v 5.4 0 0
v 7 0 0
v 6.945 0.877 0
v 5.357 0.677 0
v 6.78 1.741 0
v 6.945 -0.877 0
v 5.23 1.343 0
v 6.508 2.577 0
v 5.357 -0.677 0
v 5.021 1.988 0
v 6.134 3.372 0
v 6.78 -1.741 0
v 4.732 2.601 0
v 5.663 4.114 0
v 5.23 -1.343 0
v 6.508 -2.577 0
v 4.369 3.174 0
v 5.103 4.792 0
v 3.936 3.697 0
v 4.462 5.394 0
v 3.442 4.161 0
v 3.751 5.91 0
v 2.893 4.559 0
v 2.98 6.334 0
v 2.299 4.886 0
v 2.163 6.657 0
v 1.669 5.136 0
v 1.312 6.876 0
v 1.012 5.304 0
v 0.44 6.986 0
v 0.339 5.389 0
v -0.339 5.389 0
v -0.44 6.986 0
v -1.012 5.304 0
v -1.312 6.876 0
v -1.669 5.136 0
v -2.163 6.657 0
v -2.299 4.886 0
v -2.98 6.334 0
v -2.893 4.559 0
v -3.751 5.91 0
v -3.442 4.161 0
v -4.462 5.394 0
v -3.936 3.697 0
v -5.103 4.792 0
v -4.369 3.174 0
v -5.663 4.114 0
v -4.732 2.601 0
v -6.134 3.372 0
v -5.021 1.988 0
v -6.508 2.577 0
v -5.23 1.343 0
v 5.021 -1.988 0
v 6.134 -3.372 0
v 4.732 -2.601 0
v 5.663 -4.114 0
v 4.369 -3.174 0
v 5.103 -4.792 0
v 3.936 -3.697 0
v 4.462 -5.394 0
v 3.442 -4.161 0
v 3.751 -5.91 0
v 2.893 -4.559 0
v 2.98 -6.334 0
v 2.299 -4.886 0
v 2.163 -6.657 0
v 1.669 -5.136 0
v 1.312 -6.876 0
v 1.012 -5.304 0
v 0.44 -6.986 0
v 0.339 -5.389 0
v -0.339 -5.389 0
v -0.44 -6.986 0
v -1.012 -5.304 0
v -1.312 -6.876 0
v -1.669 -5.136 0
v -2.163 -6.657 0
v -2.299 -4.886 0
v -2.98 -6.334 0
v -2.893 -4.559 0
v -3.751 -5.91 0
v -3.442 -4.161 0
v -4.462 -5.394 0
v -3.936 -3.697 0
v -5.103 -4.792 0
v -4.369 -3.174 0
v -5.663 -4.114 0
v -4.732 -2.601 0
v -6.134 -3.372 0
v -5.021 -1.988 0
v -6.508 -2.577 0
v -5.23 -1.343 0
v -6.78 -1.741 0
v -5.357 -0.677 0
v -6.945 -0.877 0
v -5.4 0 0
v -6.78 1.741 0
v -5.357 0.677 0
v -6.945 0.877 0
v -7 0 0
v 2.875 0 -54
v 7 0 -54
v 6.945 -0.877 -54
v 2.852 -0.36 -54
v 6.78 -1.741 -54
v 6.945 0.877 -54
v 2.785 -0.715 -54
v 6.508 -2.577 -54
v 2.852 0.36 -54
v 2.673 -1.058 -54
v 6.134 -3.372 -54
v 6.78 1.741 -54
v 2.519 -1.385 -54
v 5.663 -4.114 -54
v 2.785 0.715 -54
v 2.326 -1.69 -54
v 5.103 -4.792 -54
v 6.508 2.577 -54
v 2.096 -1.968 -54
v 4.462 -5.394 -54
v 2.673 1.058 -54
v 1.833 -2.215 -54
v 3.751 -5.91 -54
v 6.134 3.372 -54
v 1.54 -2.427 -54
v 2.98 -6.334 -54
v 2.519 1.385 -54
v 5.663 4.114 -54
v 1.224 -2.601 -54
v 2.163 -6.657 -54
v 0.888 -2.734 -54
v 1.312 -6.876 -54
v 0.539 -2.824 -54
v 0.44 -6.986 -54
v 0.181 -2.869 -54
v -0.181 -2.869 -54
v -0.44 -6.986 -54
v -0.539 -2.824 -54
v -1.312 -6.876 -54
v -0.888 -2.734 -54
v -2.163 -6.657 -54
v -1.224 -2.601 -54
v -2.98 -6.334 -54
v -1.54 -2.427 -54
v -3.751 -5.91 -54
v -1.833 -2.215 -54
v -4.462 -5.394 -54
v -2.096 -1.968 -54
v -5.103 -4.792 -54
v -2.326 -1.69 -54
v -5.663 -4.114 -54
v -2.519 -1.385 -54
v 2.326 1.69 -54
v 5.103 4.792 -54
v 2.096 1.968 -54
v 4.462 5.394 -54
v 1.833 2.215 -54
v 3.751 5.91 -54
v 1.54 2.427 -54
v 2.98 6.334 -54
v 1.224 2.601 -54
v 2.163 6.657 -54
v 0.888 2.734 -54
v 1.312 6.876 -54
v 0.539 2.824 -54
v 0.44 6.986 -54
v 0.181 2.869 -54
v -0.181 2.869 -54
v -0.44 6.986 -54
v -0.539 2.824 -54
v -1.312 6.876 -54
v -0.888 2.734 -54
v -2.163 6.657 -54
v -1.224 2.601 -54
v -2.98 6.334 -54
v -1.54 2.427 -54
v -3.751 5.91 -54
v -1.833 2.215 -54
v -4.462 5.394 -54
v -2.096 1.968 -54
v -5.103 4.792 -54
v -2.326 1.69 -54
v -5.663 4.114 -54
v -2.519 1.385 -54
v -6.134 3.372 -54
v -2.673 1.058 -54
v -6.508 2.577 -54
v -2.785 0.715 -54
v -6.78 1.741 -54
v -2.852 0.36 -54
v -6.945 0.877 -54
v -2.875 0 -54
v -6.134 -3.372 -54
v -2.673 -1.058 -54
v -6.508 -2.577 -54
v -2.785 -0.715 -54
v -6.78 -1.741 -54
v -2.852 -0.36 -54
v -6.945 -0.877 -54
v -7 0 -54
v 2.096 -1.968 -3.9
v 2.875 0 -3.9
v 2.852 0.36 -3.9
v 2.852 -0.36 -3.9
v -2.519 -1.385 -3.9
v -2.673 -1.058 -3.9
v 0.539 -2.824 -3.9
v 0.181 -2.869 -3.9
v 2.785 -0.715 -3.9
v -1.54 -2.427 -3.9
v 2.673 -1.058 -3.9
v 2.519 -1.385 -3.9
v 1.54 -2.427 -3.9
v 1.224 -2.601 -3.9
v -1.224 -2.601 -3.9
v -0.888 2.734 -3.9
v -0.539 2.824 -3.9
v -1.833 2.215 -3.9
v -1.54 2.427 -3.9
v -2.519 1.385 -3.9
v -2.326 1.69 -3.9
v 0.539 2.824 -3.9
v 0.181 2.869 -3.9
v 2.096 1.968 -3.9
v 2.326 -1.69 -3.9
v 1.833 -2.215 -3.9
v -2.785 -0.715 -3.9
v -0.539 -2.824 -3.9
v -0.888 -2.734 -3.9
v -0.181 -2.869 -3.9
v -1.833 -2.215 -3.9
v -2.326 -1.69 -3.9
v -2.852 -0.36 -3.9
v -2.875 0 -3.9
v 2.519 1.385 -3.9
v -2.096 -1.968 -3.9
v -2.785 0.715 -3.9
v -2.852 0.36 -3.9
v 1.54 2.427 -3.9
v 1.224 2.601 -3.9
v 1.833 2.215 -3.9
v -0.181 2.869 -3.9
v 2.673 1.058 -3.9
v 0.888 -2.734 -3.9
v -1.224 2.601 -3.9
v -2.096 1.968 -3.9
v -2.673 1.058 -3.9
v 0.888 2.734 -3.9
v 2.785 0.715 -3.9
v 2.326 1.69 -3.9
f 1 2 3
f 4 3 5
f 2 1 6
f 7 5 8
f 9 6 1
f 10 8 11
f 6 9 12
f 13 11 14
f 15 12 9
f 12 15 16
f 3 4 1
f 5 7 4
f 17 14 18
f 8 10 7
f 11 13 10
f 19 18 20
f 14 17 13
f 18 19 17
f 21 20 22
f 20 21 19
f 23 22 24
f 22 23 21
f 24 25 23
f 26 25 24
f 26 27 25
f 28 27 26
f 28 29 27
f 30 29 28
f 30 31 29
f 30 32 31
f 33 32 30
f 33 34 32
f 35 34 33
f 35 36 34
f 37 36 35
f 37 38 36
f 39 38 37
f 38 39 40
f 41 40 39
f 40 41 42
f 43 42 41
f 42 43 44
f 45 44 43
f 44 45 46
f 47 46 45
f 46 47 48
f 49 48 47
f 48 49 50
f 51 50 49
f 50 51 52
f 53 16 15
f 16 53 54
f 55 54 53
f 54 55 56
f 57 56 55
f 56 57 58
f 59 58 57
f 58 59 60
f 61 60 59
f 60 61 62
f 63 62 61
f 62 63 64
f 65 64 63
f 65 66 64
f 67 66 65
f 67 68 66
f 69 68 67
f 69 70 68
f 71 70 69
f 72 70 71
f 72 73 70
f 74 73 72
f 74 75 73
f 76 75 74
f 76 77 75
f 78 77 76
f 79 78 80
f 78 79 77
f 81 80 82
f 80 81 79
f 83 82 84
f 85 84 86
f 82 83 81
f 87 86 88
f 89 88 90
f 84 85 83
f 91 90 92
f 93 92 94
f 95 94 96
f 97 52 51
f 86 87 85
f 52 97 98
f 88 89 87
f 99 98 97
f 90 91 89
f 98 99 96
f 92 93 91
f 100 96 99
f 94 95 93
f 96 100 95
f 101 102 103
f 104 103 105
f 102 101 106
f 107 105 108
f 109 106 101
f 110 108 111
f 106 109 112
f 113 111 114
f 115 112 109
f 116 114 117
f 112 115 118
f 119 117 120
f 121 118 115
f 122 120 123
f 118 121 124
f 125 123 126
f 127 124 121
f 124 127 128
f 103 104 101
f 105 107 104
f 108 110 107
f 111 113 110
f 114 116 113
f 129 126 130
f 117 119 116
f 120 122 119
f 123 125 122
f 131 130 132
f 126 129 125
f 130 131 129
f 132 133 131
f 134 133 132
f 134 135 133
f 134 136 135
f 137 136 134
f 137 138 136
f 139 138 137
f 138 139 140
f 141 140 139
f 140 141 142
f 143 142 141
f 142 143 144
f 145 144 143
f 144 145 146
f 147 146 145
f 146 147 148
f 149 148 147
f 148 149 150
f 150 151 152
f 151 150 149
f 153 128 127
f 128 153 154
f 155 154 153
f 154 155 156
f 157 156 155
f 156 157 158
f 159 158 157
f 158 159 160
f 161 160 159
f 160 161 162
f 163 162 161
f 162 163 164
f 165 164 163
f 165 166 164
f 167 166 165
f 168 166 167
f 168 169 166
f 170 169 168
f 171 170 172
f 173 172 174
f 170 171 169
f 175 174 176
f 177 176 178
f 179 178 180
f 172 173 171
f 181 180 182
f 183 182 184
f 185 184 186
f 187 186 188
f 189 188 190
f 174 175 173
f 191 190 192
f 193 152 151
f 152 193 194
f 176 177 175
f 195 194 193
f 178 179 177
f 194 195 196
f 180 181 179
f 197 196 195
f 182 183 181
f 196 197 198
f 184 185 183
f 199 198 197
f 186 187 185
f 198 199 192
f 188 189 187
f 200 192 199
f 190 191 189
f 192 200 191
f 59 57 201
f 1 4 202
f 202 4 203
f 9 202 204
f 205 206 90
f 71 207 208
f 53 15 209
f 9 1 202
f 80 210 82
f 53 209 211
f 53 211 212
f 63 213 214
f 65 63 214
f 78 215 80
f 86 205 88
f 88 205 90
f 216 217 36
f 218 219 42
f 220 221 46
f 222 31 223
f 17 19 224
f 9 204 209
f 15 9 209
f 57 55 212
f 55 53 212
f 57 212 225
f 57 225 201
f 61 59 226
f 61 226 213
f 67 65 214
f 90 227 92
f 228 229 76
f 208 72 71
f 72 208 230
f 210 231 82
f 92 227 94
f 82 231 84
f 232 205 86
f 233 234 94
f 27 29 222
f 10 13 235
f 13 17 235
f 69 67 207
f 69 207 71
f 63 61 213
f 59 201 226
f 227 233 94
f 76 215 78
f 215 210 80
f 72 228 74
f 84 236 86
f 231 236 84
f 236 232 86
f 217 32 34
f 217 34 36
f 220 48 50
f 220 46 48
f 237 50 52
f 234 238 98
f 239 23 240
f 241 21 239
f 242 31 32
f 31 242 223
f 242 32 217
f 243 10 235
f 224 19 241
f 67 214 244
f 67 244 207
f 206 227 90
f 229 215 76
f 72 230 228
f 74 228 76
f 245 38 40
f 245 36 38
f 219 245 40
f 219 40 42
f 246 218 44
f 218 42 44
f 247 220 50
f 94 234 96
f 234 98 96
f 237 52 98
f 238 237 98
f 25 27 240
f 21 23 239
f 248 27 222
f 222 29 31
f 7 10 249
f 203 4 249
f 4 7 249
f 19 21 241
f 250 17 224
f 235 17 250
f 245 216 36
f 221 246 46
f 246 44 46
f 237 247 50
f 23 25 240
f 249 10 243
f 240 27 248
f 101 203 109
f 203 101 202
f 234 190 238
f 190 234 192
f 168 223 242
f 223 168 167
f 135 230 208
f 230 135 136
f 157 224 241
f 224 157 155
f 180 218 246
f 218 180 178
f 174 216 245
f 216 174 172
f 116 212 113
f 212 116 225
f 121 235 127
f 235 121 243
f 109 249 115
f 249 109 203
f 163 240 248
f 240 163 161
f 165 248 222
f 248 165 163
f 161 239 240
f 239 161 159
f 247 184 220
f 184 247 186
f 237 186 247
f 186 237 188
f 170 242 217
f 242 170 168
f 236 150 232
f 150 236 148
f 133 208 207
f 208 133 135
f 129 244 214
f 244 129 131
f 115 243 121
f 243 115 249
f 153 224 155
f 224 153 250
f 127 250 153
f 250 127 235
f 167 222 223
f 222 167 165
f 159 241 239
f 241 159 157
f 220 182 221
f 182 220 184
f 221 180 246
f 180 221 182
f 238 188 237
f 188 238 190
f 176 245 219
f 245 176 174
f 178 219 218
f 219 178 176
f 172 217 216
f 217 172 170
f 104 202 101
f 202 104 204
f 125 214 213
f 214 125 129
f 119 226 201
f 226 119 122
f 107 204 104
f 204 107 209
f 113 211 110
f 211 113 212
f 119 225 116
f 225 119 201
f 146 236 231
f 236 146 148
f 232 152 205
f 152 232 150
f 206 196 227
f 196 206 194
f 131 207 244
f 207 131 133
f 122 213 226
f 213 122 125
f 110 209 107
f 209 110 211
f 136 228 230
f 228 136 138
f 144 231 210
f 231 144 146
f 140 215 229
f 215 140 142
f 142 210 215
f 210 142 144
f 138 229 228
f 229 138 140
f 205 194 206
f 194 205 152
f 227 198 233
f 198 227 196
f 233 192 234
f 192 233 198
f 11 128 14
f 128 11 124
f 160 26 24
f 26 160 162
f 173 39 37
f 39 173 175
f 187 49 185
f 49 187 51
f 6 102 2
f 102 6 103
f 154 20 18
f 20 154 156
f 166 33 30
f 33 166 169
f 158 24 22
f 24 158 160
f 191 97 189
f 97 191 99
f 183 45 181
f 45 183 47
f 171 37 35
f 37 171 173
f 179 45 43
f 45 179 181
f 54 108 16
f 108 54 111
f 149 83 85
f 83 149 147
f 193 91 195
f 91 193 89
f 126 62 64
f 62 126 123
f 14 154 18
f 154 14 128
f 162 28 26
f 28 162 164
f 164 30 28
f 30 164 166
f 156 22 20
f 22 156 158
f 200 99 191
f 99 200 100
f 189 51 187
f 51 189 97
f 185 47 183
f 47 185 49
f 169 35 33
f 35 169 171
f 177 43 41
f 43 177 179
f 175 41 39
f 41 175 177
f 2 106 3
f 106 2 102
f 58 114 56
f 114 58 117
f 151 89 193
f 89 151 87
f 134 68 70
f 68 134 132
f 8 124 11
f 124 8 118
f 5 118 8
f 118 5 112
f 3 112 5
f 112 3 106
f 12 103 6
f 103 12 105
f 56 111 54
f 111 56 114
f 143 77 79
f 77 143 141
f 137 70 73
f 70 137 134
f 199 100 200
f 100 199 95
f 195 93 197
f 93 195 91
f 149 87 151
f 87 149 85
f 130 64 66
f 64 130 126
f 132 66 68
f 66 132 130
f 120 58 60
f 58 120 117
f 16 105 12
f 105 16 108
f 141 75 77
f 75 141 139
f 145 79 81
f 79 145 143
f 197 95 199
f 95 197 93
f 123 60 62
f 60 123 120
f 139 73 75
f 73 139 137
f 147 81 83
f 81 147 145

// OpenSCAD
$fn = 50;


difference() {
	union() {
		translate(v = [0, 0, -54.0000000000]) {
			cylinder(h = 54, r = 7.0000000000);
		}
		cylinder(h = 0, r = 16.0000000000);
	}
	union() {
		translate(v = [0, 0, 0]) {
			rotate(a = [0, 0, 0]) {
				difference() {
					union() {
						#translate(v = [0, 0, -54.0000000000]) {
							cylinder(h = 54, r = 2.6000000000);
						}
						#translate(v = [0, 0, -3.9000000000]) {
							cylinder(h = 3.9000000000, r = 7.0000000000, r1 = 2.8750000000, r2 = 5.4000000000);
						}
						#translate(v = [0, 0, -54.0000000000]) {
							cylinder(h = 54, r = 2.8750000000);
						}
						#translate(v = [0, 0, -54.0000000000]) {
							cylinder(h = 54, r = 2.6000000000);
						}
					}
					union();
				}
			}
		}
	}
}
